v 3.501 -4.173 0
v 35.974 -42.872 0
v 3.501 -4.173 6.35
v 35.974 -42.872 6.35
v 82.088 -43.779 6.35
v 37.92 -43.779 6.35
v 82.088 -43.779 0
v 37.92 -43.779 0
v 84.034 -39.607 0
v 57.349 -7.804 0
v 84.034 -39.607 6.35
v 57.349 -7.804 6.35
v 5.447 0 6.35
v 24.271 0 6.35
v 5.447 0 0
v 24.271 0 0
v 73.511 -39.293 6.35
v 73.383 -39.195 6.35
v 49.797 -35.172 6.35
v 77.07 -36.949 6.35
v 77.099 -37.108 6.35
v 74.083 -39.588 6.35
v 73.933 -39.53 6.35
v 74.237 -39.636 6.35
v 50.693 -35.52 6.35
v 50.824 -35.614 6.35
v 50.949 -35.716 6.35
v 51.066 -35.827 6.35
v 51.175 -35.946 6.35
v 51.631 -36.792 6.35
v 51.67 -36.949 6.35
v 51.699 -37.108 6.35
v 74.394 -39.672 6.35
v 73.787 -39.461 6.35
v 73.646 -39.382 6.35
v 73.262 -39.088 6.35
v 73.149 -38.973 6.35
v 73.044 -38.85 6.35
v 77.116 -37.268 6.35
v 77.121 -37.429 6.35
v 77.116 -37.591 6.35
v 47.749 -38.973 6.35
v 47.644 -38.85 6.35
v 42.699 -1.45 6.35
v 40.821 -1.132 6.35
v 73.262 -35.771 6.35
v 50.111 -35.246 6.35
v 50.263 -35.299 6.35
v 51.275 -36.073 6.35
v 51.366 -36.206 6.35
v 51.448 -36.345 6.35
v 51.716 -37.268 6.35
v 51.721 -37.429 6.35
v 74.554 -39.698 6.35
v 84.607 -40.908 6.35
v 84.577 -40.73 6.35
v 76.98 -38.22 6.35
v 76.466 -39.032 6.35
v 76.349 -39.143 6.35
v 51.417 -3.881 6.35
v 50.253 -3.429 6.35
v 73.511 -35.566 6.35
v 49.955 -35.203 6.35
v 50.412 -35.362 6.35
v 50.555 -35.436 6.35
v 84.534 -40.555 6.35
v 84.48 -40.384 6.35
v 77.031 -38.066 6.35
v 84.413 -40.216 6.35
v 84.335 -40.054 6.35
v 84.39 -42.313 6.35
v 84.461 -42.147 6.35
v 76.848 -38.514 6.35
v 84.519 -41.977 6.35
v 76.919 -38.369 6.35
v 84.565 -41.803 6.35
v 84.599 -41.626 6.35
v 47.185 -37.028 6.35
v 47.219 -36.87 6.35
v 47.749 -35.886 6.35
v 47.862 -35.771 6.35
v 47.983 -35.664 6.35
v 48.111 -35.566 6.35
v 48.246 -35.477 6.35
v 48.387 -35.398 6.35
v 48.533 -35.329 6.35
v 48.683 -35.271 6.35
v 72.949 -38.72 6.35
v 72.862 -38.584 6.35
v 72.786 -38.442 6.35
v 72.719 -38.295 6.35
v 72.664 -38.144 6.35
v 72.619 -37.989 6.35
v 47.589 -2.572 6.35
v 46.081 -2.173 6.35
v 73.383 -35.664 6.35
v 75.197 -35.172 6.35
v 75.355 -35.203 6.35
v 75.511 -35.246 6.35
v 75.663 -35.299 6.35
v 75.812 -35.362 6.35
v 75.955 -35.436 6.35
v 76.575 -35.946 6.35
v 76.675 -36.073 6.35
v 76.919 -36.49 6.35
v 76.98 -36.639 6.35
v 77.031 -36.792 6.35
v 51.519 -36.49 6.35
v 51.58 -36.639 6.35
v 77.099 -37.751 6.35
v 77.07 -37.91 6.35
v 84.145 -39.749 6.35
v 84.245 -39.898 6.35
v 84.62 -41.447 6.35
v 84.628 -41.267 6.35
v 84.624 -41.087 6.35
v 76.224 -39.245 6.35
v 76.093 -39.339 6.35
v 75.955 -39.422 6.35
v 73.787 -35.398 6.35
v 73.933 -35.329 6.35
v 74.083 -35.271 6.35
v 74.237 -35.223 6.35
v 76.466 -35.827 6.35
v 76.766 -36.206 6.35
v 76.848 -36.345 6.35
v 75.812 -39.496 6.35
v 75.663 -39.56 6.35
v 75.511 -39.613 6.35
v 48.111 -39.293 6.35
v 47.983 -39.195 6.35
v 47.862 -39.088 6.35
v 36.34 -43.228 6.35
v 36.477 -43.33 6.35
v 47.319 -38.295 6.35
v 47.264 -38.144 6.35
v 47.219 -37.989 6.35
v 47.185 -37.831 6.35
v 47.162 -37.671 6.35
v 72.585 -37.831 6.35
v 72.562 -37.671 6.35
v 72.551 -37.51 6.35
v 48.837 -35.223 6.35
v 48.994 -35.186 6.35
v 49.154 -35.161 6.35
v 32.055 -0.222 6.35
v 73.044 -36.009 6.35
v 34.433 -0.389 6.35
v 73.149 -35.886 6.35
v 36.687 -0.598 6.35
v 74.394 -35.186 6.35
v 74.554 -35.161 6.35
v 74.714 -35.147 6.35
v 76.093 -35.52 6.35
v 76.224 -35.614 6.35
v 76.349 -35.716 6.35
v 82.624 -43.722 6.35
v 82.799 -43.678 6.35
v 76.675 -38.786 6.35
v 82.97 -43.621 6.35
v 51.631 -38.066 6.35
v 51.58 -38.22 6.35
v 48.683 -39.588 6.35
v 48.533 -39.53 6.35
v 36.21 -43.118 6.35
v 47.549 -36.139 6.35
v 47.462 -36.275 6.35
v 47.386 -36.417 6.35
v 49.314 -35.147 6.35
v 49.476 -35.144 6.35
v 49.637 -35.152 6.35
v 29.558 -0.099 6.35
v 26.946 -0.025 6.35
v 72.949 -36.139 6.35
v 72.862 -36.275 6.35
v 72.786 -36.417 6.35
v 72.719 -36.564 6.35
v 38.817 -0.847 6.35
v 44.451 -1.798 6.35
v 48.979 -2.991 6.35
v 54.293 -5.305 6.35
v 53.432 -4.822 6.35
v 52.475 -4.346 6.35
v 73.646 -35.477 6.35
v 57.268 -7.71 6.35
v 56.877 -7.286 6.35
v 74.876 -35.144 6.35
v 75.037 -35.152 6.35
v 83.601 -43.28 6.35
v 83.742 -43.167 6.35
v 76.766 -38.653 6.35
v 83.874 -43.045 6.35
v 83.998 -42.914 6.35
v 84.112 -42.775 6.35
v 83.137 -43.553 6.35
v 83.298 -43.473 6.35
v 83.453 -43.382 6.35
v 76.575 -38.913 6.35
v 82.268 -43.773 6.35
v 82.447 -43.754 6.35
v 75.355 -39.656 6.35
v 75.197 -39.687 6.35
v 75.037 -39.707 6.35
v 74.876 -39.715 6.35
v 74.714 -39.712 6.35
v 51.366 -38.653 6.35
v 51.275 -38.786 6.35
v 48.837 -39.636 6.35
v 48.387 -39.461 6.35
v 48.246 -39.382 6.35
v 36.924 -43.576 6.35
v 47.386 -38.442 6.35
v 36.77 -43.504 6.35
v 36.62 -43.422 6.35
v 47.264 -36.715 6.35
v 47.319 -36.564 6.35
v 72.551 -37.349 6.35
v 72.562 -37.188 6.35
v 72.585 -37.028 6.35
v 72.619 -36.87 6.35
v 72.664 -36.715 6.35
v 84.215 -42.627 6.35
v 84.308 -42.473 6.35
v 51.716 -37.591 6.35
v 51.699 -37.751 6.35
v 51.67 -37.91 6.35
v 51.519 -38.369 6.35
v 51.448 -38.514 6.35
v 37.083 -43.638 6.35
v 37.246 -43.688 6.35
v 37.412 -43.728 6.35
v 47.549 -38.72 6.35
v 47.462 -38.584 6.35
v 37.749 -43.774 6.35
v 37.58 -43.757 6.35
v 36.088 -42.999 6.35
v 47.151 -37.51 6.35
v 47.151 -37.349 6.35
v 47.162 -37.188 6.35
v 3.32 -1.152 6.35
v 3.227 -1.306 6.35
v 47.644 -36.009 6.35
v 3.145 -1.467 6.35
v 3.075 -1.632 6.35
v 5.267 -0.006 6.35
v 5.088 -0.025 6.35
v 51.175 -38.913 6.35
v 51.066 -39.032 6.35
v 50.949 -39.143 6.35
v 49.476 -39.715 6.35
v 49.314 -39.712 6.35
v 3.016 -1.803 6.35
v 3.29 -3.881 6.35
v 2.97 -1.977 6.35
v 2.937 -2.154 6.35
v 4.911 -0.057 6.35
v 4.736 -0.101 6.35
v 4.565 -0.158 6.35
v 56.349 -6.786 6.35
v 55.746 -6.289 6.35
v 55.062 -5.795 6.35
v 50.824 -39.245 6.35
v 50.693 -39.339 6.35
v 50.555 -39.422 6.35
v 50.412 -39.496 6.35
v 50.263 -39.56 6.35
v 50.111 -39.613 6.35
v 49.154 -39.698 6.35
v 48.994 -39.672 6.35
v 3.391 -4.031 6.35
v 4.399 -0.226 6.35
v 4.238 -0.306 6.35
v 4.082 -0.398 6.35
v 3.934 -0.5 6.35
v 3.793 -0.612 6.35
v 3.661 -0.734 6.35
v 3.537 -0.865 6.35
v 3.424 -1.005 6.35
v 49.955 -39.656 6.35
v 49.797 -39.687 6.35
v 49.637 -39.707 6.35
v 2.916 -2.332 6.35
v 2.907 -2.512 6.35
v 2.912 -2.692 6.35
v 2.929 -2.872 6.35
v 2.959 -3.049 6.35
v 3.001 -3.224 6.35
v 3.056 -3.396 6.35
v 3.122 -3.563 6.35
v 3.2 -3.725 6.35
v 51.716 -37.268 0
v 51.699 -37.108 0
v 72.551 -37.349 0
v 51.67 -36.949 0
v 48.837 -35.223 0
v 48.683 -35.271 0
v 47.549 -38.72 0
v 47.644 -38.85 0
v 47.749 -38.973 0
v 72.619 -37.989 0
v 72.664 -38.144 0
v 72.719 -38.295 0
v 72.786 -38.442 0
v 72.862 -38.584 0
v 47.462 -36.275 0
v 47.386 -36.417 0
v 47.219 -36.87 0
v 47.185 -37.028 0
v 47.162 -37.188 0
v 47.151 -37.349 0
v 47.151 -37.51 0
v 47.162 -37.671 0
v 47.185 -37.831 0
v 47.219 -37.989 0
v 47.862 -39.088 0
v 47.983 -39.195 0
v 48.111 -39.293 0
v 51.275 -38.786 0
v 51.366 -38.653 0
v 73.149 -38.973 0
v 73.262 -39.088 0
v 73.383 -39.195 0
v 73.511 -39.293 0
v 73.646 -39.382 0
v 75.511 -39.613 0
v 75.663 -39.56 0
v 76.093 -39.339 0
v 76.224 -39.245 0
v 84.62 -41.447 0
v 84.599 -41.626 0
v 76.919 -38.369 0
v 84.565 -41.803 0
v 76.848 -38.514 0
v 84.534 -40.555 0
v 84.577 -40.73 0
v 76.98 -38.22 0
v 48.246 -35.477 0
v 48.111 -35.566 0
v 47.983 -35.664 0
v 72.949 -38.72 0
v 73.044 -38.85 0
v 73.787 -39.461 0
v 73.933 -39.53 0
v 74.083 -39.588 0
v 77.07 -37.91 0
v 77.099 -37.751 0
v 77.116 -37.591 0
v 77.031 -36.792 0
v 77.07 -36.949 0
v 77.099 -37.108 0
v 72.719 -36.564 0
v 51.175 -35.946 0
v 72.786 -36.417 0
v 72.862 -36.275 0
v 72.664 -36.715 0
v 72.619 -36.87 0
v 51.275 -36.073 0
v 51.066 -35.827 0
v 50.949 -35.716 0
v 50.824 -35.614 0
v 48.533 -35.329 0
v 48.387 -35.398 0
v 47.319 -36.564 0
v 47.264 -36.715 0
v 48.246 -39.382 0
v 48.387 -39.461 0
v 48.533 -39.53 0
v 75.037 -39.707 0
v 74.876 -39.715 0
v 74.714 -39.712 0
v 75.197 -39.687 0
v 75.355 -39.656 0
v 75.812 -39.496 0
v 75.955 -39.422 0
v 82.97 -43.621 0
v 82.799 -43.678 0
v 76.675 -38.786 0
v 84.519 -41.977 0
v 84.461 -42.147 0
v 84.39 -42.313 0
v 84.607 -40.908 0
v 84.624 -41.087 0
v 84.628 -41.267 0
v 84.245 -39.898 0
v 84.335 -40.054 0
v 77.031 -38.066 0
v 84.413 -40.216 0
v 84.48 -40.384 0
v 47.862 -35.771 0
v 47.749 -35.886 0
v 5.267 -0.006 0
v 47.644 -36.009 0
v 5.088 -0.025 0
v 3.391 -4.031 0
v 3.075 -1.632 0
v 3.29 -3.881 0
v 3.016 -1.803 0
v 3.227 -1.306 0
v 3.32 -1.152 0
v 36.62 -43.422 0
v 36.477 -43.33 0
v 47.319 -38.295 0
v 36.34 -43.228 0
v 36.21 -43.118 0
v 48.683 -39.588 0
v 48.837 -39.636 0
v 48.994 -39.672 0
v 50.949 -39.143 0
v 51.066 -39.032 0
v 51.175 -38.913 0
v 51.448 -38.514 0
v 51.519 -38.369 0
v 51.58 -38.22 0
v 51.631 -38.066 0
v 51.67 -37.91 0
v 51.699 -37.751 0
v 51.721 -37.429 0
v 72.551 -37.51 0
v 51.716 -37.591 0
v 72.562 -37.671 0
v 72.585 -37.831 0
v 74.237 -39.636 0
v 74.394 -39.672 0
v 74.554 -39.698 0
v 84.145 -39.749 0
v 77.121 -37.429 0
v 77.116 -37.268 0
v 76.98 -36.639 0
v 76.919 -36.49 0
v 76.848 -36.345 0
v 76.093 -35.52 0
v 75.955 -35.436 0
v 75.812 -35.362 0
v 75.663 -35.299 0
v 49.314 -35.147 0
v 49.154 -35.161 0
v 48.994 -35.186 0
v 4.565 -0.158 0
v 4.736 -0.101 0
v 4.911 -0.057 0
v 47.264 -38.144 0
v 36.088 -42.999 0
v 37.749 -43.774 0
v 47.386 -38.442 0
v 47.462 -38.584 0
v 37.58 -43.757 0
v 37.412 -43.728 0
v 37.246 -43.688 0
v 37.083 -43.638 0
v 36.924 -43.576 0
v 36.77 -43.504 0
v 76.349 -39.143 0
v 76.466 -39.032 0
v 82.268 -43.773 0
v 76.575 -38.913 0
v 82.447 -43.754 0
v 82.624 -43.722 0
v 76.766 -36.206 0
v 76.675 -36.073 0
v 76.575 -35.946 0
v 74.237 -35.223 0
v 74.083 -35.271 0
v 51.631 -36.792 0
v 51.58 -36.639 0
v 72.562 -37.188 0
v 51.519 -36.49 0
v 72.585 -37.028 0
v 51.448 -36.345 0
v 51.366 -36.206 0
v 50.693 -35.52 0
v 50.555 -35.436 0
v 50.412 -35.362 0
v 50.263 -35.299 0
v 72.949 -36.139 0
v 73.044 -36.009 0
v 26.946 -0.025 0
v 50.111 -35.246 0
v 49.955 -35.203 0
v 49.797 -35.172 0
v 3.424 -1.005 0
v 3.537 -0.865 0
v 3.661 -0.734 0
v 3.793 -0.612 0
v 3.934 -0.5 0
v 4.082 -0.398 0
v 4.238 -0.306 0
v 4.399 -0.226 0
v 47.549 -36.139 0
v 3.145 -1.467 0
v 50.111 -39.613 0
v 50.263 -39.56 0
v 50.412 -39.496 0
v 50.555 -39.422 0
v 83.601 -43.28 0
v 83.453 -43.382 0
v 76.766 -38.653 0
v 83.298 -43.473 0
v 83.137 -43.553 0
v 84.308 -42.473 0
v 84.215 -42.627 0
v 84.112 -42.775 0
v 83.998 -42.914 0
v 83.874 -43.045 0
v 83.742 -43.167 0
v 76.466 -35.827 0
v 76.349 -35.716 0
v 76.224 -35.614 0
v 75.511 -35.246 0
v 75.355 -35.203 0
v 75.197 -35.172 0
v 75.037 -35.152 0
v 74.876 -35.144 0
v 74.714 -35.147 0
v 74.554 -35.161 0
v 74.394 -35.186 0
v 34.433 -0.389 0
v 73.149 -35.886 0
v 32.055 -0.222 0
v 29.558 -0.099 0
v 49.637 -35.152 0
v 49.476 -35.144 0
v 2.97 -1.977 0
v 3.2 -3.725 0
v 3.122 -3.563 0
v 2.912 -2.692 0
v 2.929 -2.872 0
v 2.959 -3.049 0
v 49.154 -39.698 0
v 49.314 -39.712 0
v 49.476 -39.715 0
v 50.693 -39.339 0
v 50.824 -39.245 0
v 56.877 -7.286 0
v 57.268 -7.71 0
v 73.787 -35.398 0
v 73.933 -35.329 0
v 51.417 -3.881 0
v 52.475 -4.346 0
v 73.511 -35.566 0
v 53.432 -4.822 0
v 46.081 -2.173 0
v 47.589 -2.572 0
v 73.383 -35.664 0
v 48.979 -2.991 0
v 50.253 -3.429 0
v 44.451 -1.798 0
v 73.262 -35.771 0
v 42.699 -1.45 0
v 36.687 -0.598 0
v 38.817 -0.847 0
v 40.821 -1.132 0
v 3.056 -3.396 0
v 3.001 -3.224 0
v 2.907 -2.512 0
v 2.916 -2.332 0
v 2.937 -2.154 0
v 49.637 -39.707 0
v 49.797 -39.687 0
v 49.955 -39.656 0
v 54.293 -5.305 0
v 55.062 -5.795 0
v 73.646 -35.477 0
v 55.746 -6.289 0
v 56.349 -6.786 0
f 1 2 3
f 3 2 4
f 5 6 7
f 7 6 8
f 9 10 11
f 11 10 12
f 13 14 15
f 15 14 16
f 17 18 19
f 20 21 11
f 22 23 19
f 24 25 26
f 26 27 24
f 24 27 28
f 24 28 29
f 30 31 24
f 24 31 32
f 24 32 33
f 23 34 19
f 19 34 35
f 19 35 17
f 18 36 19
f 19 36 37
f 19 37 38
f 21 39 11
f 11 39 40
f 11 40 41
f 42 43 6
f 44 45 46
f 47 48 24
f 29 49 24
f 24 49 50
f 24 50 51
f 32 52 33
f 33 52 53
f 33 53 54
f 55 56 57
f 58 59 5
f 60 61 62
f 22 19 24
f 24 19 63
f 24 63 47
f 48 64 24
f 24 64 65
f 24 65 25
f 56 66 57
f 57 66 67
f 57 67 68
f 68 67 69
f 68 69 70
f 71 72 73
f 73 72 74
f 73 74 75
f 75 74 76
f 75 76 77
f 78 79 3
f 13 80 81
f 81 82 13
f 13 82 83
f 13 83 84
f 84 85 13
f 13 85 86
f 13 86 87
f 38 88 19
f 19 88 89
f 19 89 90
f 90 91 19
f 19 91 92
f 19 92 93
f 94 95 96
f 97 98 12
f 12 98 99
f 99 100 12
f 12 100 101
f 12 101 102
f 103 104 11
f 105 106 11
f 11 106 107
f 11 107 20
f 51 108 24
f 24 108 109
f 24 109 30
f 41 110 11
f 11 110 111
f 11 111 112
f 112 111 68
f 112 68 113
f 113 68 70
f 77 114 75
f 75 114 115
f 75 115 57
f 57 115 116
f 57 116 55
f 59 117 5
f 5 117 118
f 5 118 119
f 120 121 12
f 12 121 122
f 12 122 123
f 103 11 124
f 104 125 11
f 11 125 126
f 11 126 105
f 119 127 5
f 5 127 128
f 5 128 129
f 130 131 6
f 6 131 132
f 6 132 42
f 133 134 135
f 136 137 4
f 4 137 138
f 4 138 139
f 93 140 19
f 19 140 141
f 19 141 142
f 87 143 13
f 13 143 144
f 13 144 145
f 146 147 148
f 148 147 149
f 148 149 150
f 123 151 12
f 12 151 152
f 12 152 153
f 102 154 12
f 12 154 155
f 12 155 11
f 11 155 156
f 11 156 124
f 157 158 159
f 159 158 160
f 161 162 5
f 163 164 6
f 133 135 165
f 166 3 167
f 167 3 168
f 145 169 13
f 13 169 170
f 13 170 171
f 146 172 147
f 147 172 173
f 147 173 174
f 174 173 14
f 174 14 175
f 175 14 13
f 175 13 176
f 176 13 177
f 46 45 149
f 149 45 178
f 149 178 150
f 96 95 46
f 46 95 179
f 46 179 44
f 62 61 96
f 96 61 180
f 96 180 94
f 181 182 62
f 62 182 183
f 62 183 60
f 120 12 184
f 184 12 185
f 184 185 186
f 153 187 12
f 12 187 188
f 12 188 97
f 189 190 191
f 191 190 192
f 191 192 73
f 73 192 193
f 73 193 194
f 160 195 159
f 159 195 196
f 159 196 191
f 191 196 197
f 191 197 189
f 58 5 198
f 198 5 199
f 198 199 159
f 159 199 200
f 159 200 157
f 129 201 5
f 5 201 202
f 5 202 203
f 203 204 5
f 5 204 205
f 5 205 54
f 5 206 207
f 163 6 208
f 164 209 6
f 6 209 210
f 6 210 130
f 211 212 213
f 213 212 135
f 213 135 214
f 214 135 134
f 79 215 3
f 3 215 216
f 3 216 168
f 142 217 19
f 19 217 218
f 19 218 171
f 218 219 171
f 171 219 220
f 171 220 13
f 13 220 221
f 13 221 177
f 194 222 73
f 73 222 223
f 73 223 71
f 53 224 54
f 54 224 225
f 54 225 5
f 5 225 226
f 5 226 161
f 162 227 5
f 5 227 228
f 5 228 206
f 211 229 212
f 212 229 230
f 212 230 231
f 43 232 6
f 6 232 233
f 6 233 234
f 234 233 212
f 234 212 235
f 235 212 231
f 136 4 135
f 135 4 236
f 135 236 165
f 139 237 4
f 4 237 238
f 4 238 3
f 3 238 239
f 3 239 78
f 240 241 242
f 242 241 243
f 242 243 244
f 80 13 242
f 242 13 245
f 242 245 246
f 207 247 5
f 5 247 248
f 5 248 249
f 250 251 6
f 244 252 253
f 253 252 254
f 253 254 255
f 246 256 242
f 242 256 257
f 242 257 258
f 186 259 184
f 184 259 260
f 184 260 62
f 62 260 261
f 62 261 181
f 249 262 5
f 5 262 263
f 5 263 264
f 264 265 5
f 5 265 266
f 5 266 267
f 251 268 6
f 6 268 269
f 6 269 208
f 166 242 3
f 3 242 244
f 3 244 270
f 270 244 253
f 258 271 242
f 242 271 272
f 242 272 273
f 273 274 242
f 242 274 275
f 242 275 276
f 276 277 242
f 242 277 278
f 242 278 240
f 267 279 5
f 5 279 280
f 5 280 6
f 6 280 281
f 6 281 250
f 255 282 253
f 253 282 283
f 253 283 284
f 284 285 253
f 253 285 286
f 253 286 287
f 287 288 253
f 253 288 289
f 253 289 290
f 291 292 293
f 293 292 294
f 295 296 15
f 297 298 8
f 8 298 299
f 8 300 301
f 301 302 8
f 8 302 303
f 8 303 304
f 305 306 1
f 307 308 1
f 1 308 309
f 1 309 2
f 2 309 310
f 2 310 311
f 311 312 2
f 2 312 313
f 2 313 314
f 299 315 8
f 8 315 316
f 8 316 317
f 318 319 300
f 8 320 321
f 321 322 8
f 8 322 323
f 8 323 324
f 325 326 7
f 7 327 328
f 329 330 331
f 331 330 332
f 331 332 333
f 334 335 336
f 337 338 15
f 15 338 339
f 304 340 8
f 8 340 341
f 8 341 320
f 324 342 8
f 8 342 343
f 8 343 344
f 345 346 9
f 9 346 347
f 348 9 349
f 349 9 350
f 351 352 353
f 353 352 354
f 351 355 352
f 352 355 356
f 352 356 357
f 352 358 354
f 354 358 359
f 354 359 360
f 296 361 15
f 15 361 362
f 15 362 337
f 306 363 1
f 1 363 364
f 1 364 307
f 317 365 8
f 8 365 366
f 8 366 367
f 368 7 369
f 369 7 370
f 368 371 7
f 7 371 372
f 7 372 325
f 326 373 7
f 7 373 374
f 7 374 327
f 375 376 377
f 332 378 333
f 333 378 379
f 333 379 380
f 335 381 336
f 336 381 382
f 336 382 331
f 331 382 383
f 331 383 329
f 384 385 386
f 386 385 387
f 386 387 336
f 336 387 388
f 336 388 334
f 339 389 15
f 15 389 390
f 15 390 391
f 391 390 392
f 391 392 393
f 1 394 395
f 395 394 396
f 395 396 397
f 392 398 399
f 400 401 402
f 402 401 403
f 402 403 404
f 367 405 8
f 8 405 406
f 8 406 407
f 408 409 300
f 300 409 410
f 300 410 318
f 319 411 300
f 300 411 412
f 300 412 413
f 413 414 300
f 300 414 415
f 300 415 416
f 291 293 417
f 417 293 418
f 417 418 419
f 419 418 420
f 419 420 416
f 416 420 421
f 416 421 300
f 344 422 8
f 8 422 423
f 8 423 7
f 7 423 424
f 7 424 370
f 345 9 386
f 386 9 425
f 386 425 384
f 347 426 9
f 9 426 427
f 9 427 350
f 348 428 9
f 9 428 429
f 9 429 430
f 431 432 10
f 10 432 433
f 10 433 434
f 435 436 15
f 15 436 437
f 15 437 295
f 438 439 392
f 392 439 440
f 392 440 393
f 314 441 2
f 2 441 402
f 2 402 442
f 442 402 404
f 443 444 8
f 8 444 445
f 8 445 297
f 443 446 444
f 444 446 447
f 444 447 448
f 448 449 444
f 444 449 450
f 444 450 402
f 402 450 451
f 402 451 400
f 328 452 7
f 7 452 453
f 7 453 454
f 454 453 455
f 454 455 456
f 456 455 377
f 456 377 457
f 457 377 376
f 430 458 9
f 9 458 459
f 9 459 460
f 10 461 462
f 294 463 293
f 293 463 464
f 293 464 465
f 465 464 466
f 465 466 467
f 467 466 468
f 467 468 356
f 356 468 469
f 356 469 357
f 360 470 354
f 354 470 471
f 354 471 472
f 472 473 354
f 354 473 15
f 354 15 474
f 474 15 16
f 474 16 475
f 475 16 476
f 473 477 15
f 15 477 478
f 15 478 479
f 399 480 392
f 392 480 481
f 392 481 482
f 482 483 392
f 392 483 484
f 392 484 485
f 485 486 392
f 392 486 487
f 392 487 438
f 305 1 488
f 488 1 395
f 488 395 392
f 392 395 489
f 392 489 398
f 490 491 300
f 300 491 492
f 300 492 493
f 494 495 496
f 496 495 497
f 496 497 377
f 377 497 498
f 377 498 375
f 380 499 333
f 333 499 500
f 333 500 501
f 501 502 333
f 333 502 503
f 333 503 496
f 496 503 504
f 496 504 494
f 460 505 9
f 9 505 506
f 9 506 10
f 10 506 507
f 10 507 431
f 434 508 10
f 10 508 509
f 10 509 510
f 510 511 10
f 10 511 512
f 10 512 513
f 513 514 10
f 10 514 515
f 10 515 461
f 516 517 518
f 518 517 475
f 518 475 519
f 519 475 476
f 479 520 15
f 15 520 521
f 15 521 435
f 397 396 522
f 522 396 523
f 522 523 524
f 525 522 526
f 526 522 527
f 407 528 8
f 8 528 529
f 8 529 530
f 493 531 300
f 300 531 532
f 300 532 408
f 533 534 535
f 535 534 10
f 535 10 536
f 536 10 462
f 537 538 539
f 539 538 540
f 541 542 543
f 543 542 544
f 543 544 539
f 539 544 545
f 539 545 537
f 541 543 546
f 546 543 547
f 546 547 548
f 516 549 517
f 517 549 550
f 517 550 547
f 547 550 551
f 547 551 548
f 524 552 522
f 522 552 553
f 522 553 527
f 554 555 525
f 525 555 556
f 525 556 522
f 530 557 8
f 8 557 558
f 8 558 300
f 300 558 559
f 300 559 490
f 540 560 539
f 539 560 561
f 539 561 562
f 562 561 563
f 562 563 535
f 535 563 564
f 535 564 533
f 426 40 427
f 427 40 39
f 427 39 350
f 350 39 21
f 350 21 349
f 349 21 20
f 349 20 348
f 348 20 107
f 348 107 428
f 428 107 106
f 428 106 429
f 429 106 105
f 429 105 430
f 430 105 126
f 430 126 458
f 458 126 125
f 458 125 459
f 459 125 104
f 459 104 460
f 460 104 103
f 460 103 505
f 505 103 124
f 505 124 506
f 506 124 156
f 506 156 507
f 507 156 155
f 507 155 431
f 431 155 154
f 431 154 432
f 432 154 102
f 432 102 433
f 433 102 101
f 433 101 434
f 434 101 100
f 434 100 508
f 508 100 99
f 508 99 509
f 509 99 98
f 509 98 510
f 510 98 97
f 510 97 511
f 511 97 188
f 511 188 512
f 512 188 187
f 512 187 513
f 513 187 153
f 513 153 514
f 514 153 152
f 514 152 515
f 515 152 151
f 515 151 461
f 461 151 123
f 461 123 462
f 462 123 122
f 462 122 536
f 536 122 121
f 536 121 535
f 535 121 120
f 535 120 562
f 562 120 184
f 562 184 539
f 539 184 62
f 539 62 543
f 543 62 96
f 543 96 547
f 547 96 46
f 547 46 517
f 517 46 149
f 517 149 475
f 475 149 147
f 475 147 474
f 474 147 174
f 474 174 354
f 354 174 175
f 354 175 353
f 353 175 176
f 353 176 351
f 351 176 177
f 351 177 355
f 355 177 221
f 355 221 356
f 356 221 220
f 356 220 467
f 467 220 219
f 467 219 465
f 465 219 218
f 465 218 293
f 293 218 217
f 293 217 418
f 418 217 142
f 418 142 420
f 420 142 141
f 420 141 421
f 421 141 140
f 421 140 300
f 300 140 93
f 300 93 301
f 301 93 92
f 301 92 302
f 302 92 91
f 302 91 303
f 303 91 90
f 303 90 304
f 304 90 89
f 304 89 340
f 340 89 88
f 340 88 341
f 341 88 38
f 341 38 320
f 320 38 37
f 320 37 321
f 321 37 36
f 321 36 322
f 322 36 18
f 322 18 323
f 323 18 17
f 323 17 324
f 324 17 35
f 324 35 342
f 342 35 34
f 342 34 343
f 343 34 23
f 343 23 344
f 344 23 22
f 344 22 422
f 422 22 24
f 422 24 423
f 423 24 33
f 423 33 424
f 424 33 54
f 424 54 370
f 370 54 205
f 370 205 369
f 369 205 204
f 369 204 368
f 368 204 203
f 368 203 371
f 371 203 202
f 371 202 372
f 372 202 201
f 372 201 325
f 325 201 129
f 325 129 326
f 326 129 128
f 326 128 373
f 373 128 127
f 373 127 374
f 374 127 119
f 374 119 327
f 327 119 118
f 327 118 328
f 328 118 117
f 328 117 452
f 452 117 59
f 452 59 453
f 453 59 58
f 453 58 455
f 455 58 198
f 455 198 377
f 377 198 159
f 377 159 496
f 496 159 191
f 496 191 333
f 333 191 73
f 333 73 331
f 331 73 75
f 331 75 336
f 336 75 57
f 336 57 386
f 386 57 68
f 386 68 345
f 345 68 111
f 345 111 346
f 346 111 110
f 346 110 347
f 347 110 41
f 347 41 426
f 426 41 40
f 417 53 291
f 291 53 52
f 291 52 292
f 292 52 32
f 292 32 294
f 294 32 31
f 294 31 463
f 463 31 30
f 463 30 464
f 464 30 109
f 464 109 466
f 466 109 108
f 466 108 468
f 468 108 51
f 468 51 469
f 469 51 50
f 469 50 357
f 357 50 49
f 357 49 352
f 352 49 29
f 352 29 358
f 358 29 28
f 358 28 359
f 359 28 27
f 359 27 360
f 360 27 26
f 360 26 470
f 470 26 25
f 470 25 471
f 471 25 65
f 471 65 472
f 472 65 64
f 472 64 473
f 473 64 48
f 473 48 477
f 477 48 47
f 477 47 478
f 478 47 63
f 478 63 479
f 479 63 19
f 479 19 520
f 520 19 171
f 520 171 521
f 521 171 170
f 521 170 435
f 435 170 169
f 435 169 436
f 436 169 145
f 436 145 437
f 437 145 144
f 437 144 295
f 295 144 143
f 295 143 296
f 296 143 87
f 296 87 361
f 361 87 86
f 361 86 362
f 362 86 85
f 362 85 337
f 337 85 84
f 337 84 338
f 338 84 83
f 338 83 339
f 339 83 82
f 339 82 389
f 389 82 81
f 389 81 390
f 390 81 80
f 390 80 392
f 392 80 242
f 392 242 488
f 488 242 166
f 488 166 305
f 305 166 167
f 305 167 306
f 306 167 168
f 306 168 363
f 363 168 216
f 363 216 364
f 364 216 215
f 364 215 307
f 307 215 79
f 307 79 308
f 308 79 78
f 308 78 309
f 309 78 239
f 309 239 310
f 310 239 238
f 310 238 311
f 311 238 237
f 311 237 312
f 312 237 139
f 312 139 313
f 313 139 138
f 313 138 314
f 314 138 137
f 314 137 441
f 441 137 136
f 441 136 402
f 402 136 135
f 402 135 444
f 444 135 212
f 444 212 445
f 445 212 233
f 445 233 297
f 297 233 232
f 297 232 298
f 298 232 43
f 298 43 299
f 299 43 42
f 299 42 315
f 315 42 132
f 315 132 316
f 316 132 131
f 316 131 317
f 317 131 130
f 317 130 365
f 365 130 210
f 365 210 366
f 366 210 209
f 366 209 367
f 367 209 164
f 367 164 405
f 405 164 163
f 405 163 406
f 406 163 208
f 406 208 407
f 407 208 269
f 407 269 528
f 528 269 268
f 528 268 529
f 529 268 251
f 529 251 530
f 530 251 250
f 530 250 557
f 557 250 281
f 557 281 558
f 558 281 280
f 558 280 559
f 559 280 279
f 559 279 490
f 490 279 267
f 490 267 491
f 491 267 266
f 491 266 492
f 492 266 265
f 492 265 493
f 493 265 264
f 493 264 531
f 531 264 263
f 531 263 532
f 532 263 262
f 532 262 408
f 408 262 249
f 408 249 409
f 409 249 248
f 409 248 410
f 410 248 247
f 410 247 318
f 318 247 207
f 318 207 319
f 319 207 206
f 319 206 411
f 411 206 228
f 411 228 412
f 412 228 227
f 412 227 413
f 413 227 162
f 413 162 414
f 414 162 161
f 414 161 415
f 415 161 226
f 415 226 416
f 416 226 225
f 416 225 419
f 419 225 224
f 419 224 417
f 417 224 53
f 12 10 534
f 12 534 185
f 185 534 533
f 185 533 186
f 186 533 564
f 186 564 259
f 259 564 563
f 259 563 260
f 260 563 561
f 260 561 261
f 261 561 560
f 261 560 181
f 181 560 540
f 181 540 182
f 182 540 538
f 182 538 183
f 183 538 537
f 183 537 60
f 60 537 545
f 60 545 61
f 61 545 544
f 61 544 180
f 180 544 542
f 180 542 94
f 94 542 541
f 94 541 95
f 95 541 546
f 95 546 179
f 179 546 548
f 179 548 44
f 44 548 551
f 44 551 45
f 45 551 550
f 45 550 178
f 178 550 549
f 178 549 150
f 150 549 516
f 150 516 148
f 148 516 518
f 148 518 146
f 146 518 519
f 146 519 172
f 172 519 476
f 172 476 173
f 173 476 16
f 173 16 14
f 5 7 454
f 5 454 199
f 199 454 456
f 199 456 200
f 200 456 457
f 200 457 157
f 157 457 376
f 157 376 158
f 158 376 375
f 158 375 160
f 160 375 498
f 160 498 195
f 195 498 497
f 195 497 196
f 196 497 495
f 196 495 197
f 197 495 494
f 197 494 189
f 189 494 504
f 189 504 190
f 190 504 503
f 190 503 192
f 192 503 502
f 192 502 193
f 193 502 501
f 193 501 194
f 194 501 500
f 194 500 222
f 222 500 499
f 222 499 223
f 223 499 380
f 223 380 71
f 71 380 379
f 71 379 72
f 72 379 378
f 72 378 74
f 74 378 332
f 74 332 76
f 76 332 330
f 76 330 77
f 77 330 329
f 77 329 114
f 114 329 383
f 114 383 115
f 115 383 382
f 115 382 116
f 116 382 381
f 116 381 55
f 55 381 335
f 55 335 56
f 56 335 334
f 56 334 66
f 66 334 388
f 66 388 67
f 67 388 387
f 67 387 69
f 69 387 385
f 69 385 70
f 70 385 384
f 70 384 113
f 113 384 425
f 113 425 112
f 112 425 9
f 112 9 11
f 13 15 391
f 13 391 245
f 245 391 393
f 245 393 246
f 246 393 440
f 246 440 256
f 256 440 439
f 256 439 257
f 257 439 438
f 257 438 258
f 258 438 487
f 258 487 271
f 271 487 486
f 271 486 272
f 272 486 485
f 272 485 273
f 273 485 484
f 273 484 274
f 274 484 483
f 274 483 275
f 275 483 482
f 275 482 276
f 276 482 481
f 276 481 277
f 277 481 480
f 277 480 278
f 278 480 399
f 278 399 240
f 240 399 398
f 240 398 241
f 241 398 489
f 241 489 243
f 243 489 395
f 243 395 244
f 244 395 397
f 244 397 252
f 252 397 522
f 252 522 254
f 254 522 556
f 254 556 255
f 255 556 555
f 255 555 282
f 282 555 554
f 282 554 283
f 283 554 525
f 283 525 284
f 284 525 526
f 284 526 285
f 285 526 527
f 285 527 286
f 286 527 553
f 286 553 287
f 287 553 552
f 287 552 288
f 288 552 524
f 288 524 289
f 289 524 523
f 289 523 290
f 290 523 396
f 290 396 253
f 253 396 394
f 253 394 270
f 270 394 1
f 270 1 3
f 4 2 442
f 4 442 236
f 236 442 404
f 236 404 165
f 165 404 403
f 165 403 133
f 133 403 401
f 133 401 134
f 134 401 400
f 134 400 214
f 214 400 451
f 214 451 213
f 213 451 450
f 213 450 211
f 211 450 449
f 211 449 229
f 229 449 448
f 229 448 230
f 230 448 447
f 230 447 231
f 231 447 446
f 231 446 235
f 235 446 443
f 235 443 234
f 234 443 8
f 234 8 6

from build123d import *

# Parameters (mm, degrees)
BOSS_EXTRUDE1_DEPTH = 6.35
SKETCH2_R           = 2.286
CUT_EXTRUDE1_DEPTH  = 99.078502682
FILLET2_R           = 2.54


with BuildPart() as part:
    # Sketch1 → Boss-Extrude1 (new body)
    with BuildSketch(Plane.XY):
        Polygon((0, 0), (50.8, 0), (87.535311894, -43.779439924), (36.735311894, -43.779439924), align=None)
    extrude(amount=BOSS_EXTRUDE1_DEPTH)

    # Sketch2 → Cut-Extrude1 (cut, through all)
    with BuildSketch(Plane.XY.offset(6.35)):
        with Locations((74.835311894, -37.429439924)):
            Circle(SKETCH2_R)
        with Locations((49.435311894, -37.429439924)):
            Circle(SKETCH2_R)
    extrude(amount=-CUT_EXTRUDE1_DEPTH, mode=Mode.SUBTRACT)

    # Fillet1
    # an asymmetric fillet: 43.18, 35.56 mm, written as the material it takes off along each edge
    with BuildSketch(Plane(origin=(50.8, 0, -66.322759672), x_dir=(-1, 0, 0), z_dir=(0, 0, 1))) as fillet1_piece_1:
        with BuildLine():
            Bezier((26.529103869, 0), (0, 0), (-6.548695185, 7.804431014), weights=[1, 0.906307787, 1])
            Line((-6.548695185, 7.804431014), (0, 0))
            Line((0, 0), (26.529103869, 0))
        make_face()
    extrude(amount=138.995519344, mode=Mode.SUBTRACT)

    # Fillet2
    fillet2_edges = [part.edges().sort_by_distance(p)[0] for p in [
        (87.535311894, -43.779439924, 3.175),
        (0, 0, 3.175),
        (36.735311894, -43.779439924, 3.175),
    ]]
    fillet(fillet2_edges, radius=FILLET2_R)


solid = part.part
